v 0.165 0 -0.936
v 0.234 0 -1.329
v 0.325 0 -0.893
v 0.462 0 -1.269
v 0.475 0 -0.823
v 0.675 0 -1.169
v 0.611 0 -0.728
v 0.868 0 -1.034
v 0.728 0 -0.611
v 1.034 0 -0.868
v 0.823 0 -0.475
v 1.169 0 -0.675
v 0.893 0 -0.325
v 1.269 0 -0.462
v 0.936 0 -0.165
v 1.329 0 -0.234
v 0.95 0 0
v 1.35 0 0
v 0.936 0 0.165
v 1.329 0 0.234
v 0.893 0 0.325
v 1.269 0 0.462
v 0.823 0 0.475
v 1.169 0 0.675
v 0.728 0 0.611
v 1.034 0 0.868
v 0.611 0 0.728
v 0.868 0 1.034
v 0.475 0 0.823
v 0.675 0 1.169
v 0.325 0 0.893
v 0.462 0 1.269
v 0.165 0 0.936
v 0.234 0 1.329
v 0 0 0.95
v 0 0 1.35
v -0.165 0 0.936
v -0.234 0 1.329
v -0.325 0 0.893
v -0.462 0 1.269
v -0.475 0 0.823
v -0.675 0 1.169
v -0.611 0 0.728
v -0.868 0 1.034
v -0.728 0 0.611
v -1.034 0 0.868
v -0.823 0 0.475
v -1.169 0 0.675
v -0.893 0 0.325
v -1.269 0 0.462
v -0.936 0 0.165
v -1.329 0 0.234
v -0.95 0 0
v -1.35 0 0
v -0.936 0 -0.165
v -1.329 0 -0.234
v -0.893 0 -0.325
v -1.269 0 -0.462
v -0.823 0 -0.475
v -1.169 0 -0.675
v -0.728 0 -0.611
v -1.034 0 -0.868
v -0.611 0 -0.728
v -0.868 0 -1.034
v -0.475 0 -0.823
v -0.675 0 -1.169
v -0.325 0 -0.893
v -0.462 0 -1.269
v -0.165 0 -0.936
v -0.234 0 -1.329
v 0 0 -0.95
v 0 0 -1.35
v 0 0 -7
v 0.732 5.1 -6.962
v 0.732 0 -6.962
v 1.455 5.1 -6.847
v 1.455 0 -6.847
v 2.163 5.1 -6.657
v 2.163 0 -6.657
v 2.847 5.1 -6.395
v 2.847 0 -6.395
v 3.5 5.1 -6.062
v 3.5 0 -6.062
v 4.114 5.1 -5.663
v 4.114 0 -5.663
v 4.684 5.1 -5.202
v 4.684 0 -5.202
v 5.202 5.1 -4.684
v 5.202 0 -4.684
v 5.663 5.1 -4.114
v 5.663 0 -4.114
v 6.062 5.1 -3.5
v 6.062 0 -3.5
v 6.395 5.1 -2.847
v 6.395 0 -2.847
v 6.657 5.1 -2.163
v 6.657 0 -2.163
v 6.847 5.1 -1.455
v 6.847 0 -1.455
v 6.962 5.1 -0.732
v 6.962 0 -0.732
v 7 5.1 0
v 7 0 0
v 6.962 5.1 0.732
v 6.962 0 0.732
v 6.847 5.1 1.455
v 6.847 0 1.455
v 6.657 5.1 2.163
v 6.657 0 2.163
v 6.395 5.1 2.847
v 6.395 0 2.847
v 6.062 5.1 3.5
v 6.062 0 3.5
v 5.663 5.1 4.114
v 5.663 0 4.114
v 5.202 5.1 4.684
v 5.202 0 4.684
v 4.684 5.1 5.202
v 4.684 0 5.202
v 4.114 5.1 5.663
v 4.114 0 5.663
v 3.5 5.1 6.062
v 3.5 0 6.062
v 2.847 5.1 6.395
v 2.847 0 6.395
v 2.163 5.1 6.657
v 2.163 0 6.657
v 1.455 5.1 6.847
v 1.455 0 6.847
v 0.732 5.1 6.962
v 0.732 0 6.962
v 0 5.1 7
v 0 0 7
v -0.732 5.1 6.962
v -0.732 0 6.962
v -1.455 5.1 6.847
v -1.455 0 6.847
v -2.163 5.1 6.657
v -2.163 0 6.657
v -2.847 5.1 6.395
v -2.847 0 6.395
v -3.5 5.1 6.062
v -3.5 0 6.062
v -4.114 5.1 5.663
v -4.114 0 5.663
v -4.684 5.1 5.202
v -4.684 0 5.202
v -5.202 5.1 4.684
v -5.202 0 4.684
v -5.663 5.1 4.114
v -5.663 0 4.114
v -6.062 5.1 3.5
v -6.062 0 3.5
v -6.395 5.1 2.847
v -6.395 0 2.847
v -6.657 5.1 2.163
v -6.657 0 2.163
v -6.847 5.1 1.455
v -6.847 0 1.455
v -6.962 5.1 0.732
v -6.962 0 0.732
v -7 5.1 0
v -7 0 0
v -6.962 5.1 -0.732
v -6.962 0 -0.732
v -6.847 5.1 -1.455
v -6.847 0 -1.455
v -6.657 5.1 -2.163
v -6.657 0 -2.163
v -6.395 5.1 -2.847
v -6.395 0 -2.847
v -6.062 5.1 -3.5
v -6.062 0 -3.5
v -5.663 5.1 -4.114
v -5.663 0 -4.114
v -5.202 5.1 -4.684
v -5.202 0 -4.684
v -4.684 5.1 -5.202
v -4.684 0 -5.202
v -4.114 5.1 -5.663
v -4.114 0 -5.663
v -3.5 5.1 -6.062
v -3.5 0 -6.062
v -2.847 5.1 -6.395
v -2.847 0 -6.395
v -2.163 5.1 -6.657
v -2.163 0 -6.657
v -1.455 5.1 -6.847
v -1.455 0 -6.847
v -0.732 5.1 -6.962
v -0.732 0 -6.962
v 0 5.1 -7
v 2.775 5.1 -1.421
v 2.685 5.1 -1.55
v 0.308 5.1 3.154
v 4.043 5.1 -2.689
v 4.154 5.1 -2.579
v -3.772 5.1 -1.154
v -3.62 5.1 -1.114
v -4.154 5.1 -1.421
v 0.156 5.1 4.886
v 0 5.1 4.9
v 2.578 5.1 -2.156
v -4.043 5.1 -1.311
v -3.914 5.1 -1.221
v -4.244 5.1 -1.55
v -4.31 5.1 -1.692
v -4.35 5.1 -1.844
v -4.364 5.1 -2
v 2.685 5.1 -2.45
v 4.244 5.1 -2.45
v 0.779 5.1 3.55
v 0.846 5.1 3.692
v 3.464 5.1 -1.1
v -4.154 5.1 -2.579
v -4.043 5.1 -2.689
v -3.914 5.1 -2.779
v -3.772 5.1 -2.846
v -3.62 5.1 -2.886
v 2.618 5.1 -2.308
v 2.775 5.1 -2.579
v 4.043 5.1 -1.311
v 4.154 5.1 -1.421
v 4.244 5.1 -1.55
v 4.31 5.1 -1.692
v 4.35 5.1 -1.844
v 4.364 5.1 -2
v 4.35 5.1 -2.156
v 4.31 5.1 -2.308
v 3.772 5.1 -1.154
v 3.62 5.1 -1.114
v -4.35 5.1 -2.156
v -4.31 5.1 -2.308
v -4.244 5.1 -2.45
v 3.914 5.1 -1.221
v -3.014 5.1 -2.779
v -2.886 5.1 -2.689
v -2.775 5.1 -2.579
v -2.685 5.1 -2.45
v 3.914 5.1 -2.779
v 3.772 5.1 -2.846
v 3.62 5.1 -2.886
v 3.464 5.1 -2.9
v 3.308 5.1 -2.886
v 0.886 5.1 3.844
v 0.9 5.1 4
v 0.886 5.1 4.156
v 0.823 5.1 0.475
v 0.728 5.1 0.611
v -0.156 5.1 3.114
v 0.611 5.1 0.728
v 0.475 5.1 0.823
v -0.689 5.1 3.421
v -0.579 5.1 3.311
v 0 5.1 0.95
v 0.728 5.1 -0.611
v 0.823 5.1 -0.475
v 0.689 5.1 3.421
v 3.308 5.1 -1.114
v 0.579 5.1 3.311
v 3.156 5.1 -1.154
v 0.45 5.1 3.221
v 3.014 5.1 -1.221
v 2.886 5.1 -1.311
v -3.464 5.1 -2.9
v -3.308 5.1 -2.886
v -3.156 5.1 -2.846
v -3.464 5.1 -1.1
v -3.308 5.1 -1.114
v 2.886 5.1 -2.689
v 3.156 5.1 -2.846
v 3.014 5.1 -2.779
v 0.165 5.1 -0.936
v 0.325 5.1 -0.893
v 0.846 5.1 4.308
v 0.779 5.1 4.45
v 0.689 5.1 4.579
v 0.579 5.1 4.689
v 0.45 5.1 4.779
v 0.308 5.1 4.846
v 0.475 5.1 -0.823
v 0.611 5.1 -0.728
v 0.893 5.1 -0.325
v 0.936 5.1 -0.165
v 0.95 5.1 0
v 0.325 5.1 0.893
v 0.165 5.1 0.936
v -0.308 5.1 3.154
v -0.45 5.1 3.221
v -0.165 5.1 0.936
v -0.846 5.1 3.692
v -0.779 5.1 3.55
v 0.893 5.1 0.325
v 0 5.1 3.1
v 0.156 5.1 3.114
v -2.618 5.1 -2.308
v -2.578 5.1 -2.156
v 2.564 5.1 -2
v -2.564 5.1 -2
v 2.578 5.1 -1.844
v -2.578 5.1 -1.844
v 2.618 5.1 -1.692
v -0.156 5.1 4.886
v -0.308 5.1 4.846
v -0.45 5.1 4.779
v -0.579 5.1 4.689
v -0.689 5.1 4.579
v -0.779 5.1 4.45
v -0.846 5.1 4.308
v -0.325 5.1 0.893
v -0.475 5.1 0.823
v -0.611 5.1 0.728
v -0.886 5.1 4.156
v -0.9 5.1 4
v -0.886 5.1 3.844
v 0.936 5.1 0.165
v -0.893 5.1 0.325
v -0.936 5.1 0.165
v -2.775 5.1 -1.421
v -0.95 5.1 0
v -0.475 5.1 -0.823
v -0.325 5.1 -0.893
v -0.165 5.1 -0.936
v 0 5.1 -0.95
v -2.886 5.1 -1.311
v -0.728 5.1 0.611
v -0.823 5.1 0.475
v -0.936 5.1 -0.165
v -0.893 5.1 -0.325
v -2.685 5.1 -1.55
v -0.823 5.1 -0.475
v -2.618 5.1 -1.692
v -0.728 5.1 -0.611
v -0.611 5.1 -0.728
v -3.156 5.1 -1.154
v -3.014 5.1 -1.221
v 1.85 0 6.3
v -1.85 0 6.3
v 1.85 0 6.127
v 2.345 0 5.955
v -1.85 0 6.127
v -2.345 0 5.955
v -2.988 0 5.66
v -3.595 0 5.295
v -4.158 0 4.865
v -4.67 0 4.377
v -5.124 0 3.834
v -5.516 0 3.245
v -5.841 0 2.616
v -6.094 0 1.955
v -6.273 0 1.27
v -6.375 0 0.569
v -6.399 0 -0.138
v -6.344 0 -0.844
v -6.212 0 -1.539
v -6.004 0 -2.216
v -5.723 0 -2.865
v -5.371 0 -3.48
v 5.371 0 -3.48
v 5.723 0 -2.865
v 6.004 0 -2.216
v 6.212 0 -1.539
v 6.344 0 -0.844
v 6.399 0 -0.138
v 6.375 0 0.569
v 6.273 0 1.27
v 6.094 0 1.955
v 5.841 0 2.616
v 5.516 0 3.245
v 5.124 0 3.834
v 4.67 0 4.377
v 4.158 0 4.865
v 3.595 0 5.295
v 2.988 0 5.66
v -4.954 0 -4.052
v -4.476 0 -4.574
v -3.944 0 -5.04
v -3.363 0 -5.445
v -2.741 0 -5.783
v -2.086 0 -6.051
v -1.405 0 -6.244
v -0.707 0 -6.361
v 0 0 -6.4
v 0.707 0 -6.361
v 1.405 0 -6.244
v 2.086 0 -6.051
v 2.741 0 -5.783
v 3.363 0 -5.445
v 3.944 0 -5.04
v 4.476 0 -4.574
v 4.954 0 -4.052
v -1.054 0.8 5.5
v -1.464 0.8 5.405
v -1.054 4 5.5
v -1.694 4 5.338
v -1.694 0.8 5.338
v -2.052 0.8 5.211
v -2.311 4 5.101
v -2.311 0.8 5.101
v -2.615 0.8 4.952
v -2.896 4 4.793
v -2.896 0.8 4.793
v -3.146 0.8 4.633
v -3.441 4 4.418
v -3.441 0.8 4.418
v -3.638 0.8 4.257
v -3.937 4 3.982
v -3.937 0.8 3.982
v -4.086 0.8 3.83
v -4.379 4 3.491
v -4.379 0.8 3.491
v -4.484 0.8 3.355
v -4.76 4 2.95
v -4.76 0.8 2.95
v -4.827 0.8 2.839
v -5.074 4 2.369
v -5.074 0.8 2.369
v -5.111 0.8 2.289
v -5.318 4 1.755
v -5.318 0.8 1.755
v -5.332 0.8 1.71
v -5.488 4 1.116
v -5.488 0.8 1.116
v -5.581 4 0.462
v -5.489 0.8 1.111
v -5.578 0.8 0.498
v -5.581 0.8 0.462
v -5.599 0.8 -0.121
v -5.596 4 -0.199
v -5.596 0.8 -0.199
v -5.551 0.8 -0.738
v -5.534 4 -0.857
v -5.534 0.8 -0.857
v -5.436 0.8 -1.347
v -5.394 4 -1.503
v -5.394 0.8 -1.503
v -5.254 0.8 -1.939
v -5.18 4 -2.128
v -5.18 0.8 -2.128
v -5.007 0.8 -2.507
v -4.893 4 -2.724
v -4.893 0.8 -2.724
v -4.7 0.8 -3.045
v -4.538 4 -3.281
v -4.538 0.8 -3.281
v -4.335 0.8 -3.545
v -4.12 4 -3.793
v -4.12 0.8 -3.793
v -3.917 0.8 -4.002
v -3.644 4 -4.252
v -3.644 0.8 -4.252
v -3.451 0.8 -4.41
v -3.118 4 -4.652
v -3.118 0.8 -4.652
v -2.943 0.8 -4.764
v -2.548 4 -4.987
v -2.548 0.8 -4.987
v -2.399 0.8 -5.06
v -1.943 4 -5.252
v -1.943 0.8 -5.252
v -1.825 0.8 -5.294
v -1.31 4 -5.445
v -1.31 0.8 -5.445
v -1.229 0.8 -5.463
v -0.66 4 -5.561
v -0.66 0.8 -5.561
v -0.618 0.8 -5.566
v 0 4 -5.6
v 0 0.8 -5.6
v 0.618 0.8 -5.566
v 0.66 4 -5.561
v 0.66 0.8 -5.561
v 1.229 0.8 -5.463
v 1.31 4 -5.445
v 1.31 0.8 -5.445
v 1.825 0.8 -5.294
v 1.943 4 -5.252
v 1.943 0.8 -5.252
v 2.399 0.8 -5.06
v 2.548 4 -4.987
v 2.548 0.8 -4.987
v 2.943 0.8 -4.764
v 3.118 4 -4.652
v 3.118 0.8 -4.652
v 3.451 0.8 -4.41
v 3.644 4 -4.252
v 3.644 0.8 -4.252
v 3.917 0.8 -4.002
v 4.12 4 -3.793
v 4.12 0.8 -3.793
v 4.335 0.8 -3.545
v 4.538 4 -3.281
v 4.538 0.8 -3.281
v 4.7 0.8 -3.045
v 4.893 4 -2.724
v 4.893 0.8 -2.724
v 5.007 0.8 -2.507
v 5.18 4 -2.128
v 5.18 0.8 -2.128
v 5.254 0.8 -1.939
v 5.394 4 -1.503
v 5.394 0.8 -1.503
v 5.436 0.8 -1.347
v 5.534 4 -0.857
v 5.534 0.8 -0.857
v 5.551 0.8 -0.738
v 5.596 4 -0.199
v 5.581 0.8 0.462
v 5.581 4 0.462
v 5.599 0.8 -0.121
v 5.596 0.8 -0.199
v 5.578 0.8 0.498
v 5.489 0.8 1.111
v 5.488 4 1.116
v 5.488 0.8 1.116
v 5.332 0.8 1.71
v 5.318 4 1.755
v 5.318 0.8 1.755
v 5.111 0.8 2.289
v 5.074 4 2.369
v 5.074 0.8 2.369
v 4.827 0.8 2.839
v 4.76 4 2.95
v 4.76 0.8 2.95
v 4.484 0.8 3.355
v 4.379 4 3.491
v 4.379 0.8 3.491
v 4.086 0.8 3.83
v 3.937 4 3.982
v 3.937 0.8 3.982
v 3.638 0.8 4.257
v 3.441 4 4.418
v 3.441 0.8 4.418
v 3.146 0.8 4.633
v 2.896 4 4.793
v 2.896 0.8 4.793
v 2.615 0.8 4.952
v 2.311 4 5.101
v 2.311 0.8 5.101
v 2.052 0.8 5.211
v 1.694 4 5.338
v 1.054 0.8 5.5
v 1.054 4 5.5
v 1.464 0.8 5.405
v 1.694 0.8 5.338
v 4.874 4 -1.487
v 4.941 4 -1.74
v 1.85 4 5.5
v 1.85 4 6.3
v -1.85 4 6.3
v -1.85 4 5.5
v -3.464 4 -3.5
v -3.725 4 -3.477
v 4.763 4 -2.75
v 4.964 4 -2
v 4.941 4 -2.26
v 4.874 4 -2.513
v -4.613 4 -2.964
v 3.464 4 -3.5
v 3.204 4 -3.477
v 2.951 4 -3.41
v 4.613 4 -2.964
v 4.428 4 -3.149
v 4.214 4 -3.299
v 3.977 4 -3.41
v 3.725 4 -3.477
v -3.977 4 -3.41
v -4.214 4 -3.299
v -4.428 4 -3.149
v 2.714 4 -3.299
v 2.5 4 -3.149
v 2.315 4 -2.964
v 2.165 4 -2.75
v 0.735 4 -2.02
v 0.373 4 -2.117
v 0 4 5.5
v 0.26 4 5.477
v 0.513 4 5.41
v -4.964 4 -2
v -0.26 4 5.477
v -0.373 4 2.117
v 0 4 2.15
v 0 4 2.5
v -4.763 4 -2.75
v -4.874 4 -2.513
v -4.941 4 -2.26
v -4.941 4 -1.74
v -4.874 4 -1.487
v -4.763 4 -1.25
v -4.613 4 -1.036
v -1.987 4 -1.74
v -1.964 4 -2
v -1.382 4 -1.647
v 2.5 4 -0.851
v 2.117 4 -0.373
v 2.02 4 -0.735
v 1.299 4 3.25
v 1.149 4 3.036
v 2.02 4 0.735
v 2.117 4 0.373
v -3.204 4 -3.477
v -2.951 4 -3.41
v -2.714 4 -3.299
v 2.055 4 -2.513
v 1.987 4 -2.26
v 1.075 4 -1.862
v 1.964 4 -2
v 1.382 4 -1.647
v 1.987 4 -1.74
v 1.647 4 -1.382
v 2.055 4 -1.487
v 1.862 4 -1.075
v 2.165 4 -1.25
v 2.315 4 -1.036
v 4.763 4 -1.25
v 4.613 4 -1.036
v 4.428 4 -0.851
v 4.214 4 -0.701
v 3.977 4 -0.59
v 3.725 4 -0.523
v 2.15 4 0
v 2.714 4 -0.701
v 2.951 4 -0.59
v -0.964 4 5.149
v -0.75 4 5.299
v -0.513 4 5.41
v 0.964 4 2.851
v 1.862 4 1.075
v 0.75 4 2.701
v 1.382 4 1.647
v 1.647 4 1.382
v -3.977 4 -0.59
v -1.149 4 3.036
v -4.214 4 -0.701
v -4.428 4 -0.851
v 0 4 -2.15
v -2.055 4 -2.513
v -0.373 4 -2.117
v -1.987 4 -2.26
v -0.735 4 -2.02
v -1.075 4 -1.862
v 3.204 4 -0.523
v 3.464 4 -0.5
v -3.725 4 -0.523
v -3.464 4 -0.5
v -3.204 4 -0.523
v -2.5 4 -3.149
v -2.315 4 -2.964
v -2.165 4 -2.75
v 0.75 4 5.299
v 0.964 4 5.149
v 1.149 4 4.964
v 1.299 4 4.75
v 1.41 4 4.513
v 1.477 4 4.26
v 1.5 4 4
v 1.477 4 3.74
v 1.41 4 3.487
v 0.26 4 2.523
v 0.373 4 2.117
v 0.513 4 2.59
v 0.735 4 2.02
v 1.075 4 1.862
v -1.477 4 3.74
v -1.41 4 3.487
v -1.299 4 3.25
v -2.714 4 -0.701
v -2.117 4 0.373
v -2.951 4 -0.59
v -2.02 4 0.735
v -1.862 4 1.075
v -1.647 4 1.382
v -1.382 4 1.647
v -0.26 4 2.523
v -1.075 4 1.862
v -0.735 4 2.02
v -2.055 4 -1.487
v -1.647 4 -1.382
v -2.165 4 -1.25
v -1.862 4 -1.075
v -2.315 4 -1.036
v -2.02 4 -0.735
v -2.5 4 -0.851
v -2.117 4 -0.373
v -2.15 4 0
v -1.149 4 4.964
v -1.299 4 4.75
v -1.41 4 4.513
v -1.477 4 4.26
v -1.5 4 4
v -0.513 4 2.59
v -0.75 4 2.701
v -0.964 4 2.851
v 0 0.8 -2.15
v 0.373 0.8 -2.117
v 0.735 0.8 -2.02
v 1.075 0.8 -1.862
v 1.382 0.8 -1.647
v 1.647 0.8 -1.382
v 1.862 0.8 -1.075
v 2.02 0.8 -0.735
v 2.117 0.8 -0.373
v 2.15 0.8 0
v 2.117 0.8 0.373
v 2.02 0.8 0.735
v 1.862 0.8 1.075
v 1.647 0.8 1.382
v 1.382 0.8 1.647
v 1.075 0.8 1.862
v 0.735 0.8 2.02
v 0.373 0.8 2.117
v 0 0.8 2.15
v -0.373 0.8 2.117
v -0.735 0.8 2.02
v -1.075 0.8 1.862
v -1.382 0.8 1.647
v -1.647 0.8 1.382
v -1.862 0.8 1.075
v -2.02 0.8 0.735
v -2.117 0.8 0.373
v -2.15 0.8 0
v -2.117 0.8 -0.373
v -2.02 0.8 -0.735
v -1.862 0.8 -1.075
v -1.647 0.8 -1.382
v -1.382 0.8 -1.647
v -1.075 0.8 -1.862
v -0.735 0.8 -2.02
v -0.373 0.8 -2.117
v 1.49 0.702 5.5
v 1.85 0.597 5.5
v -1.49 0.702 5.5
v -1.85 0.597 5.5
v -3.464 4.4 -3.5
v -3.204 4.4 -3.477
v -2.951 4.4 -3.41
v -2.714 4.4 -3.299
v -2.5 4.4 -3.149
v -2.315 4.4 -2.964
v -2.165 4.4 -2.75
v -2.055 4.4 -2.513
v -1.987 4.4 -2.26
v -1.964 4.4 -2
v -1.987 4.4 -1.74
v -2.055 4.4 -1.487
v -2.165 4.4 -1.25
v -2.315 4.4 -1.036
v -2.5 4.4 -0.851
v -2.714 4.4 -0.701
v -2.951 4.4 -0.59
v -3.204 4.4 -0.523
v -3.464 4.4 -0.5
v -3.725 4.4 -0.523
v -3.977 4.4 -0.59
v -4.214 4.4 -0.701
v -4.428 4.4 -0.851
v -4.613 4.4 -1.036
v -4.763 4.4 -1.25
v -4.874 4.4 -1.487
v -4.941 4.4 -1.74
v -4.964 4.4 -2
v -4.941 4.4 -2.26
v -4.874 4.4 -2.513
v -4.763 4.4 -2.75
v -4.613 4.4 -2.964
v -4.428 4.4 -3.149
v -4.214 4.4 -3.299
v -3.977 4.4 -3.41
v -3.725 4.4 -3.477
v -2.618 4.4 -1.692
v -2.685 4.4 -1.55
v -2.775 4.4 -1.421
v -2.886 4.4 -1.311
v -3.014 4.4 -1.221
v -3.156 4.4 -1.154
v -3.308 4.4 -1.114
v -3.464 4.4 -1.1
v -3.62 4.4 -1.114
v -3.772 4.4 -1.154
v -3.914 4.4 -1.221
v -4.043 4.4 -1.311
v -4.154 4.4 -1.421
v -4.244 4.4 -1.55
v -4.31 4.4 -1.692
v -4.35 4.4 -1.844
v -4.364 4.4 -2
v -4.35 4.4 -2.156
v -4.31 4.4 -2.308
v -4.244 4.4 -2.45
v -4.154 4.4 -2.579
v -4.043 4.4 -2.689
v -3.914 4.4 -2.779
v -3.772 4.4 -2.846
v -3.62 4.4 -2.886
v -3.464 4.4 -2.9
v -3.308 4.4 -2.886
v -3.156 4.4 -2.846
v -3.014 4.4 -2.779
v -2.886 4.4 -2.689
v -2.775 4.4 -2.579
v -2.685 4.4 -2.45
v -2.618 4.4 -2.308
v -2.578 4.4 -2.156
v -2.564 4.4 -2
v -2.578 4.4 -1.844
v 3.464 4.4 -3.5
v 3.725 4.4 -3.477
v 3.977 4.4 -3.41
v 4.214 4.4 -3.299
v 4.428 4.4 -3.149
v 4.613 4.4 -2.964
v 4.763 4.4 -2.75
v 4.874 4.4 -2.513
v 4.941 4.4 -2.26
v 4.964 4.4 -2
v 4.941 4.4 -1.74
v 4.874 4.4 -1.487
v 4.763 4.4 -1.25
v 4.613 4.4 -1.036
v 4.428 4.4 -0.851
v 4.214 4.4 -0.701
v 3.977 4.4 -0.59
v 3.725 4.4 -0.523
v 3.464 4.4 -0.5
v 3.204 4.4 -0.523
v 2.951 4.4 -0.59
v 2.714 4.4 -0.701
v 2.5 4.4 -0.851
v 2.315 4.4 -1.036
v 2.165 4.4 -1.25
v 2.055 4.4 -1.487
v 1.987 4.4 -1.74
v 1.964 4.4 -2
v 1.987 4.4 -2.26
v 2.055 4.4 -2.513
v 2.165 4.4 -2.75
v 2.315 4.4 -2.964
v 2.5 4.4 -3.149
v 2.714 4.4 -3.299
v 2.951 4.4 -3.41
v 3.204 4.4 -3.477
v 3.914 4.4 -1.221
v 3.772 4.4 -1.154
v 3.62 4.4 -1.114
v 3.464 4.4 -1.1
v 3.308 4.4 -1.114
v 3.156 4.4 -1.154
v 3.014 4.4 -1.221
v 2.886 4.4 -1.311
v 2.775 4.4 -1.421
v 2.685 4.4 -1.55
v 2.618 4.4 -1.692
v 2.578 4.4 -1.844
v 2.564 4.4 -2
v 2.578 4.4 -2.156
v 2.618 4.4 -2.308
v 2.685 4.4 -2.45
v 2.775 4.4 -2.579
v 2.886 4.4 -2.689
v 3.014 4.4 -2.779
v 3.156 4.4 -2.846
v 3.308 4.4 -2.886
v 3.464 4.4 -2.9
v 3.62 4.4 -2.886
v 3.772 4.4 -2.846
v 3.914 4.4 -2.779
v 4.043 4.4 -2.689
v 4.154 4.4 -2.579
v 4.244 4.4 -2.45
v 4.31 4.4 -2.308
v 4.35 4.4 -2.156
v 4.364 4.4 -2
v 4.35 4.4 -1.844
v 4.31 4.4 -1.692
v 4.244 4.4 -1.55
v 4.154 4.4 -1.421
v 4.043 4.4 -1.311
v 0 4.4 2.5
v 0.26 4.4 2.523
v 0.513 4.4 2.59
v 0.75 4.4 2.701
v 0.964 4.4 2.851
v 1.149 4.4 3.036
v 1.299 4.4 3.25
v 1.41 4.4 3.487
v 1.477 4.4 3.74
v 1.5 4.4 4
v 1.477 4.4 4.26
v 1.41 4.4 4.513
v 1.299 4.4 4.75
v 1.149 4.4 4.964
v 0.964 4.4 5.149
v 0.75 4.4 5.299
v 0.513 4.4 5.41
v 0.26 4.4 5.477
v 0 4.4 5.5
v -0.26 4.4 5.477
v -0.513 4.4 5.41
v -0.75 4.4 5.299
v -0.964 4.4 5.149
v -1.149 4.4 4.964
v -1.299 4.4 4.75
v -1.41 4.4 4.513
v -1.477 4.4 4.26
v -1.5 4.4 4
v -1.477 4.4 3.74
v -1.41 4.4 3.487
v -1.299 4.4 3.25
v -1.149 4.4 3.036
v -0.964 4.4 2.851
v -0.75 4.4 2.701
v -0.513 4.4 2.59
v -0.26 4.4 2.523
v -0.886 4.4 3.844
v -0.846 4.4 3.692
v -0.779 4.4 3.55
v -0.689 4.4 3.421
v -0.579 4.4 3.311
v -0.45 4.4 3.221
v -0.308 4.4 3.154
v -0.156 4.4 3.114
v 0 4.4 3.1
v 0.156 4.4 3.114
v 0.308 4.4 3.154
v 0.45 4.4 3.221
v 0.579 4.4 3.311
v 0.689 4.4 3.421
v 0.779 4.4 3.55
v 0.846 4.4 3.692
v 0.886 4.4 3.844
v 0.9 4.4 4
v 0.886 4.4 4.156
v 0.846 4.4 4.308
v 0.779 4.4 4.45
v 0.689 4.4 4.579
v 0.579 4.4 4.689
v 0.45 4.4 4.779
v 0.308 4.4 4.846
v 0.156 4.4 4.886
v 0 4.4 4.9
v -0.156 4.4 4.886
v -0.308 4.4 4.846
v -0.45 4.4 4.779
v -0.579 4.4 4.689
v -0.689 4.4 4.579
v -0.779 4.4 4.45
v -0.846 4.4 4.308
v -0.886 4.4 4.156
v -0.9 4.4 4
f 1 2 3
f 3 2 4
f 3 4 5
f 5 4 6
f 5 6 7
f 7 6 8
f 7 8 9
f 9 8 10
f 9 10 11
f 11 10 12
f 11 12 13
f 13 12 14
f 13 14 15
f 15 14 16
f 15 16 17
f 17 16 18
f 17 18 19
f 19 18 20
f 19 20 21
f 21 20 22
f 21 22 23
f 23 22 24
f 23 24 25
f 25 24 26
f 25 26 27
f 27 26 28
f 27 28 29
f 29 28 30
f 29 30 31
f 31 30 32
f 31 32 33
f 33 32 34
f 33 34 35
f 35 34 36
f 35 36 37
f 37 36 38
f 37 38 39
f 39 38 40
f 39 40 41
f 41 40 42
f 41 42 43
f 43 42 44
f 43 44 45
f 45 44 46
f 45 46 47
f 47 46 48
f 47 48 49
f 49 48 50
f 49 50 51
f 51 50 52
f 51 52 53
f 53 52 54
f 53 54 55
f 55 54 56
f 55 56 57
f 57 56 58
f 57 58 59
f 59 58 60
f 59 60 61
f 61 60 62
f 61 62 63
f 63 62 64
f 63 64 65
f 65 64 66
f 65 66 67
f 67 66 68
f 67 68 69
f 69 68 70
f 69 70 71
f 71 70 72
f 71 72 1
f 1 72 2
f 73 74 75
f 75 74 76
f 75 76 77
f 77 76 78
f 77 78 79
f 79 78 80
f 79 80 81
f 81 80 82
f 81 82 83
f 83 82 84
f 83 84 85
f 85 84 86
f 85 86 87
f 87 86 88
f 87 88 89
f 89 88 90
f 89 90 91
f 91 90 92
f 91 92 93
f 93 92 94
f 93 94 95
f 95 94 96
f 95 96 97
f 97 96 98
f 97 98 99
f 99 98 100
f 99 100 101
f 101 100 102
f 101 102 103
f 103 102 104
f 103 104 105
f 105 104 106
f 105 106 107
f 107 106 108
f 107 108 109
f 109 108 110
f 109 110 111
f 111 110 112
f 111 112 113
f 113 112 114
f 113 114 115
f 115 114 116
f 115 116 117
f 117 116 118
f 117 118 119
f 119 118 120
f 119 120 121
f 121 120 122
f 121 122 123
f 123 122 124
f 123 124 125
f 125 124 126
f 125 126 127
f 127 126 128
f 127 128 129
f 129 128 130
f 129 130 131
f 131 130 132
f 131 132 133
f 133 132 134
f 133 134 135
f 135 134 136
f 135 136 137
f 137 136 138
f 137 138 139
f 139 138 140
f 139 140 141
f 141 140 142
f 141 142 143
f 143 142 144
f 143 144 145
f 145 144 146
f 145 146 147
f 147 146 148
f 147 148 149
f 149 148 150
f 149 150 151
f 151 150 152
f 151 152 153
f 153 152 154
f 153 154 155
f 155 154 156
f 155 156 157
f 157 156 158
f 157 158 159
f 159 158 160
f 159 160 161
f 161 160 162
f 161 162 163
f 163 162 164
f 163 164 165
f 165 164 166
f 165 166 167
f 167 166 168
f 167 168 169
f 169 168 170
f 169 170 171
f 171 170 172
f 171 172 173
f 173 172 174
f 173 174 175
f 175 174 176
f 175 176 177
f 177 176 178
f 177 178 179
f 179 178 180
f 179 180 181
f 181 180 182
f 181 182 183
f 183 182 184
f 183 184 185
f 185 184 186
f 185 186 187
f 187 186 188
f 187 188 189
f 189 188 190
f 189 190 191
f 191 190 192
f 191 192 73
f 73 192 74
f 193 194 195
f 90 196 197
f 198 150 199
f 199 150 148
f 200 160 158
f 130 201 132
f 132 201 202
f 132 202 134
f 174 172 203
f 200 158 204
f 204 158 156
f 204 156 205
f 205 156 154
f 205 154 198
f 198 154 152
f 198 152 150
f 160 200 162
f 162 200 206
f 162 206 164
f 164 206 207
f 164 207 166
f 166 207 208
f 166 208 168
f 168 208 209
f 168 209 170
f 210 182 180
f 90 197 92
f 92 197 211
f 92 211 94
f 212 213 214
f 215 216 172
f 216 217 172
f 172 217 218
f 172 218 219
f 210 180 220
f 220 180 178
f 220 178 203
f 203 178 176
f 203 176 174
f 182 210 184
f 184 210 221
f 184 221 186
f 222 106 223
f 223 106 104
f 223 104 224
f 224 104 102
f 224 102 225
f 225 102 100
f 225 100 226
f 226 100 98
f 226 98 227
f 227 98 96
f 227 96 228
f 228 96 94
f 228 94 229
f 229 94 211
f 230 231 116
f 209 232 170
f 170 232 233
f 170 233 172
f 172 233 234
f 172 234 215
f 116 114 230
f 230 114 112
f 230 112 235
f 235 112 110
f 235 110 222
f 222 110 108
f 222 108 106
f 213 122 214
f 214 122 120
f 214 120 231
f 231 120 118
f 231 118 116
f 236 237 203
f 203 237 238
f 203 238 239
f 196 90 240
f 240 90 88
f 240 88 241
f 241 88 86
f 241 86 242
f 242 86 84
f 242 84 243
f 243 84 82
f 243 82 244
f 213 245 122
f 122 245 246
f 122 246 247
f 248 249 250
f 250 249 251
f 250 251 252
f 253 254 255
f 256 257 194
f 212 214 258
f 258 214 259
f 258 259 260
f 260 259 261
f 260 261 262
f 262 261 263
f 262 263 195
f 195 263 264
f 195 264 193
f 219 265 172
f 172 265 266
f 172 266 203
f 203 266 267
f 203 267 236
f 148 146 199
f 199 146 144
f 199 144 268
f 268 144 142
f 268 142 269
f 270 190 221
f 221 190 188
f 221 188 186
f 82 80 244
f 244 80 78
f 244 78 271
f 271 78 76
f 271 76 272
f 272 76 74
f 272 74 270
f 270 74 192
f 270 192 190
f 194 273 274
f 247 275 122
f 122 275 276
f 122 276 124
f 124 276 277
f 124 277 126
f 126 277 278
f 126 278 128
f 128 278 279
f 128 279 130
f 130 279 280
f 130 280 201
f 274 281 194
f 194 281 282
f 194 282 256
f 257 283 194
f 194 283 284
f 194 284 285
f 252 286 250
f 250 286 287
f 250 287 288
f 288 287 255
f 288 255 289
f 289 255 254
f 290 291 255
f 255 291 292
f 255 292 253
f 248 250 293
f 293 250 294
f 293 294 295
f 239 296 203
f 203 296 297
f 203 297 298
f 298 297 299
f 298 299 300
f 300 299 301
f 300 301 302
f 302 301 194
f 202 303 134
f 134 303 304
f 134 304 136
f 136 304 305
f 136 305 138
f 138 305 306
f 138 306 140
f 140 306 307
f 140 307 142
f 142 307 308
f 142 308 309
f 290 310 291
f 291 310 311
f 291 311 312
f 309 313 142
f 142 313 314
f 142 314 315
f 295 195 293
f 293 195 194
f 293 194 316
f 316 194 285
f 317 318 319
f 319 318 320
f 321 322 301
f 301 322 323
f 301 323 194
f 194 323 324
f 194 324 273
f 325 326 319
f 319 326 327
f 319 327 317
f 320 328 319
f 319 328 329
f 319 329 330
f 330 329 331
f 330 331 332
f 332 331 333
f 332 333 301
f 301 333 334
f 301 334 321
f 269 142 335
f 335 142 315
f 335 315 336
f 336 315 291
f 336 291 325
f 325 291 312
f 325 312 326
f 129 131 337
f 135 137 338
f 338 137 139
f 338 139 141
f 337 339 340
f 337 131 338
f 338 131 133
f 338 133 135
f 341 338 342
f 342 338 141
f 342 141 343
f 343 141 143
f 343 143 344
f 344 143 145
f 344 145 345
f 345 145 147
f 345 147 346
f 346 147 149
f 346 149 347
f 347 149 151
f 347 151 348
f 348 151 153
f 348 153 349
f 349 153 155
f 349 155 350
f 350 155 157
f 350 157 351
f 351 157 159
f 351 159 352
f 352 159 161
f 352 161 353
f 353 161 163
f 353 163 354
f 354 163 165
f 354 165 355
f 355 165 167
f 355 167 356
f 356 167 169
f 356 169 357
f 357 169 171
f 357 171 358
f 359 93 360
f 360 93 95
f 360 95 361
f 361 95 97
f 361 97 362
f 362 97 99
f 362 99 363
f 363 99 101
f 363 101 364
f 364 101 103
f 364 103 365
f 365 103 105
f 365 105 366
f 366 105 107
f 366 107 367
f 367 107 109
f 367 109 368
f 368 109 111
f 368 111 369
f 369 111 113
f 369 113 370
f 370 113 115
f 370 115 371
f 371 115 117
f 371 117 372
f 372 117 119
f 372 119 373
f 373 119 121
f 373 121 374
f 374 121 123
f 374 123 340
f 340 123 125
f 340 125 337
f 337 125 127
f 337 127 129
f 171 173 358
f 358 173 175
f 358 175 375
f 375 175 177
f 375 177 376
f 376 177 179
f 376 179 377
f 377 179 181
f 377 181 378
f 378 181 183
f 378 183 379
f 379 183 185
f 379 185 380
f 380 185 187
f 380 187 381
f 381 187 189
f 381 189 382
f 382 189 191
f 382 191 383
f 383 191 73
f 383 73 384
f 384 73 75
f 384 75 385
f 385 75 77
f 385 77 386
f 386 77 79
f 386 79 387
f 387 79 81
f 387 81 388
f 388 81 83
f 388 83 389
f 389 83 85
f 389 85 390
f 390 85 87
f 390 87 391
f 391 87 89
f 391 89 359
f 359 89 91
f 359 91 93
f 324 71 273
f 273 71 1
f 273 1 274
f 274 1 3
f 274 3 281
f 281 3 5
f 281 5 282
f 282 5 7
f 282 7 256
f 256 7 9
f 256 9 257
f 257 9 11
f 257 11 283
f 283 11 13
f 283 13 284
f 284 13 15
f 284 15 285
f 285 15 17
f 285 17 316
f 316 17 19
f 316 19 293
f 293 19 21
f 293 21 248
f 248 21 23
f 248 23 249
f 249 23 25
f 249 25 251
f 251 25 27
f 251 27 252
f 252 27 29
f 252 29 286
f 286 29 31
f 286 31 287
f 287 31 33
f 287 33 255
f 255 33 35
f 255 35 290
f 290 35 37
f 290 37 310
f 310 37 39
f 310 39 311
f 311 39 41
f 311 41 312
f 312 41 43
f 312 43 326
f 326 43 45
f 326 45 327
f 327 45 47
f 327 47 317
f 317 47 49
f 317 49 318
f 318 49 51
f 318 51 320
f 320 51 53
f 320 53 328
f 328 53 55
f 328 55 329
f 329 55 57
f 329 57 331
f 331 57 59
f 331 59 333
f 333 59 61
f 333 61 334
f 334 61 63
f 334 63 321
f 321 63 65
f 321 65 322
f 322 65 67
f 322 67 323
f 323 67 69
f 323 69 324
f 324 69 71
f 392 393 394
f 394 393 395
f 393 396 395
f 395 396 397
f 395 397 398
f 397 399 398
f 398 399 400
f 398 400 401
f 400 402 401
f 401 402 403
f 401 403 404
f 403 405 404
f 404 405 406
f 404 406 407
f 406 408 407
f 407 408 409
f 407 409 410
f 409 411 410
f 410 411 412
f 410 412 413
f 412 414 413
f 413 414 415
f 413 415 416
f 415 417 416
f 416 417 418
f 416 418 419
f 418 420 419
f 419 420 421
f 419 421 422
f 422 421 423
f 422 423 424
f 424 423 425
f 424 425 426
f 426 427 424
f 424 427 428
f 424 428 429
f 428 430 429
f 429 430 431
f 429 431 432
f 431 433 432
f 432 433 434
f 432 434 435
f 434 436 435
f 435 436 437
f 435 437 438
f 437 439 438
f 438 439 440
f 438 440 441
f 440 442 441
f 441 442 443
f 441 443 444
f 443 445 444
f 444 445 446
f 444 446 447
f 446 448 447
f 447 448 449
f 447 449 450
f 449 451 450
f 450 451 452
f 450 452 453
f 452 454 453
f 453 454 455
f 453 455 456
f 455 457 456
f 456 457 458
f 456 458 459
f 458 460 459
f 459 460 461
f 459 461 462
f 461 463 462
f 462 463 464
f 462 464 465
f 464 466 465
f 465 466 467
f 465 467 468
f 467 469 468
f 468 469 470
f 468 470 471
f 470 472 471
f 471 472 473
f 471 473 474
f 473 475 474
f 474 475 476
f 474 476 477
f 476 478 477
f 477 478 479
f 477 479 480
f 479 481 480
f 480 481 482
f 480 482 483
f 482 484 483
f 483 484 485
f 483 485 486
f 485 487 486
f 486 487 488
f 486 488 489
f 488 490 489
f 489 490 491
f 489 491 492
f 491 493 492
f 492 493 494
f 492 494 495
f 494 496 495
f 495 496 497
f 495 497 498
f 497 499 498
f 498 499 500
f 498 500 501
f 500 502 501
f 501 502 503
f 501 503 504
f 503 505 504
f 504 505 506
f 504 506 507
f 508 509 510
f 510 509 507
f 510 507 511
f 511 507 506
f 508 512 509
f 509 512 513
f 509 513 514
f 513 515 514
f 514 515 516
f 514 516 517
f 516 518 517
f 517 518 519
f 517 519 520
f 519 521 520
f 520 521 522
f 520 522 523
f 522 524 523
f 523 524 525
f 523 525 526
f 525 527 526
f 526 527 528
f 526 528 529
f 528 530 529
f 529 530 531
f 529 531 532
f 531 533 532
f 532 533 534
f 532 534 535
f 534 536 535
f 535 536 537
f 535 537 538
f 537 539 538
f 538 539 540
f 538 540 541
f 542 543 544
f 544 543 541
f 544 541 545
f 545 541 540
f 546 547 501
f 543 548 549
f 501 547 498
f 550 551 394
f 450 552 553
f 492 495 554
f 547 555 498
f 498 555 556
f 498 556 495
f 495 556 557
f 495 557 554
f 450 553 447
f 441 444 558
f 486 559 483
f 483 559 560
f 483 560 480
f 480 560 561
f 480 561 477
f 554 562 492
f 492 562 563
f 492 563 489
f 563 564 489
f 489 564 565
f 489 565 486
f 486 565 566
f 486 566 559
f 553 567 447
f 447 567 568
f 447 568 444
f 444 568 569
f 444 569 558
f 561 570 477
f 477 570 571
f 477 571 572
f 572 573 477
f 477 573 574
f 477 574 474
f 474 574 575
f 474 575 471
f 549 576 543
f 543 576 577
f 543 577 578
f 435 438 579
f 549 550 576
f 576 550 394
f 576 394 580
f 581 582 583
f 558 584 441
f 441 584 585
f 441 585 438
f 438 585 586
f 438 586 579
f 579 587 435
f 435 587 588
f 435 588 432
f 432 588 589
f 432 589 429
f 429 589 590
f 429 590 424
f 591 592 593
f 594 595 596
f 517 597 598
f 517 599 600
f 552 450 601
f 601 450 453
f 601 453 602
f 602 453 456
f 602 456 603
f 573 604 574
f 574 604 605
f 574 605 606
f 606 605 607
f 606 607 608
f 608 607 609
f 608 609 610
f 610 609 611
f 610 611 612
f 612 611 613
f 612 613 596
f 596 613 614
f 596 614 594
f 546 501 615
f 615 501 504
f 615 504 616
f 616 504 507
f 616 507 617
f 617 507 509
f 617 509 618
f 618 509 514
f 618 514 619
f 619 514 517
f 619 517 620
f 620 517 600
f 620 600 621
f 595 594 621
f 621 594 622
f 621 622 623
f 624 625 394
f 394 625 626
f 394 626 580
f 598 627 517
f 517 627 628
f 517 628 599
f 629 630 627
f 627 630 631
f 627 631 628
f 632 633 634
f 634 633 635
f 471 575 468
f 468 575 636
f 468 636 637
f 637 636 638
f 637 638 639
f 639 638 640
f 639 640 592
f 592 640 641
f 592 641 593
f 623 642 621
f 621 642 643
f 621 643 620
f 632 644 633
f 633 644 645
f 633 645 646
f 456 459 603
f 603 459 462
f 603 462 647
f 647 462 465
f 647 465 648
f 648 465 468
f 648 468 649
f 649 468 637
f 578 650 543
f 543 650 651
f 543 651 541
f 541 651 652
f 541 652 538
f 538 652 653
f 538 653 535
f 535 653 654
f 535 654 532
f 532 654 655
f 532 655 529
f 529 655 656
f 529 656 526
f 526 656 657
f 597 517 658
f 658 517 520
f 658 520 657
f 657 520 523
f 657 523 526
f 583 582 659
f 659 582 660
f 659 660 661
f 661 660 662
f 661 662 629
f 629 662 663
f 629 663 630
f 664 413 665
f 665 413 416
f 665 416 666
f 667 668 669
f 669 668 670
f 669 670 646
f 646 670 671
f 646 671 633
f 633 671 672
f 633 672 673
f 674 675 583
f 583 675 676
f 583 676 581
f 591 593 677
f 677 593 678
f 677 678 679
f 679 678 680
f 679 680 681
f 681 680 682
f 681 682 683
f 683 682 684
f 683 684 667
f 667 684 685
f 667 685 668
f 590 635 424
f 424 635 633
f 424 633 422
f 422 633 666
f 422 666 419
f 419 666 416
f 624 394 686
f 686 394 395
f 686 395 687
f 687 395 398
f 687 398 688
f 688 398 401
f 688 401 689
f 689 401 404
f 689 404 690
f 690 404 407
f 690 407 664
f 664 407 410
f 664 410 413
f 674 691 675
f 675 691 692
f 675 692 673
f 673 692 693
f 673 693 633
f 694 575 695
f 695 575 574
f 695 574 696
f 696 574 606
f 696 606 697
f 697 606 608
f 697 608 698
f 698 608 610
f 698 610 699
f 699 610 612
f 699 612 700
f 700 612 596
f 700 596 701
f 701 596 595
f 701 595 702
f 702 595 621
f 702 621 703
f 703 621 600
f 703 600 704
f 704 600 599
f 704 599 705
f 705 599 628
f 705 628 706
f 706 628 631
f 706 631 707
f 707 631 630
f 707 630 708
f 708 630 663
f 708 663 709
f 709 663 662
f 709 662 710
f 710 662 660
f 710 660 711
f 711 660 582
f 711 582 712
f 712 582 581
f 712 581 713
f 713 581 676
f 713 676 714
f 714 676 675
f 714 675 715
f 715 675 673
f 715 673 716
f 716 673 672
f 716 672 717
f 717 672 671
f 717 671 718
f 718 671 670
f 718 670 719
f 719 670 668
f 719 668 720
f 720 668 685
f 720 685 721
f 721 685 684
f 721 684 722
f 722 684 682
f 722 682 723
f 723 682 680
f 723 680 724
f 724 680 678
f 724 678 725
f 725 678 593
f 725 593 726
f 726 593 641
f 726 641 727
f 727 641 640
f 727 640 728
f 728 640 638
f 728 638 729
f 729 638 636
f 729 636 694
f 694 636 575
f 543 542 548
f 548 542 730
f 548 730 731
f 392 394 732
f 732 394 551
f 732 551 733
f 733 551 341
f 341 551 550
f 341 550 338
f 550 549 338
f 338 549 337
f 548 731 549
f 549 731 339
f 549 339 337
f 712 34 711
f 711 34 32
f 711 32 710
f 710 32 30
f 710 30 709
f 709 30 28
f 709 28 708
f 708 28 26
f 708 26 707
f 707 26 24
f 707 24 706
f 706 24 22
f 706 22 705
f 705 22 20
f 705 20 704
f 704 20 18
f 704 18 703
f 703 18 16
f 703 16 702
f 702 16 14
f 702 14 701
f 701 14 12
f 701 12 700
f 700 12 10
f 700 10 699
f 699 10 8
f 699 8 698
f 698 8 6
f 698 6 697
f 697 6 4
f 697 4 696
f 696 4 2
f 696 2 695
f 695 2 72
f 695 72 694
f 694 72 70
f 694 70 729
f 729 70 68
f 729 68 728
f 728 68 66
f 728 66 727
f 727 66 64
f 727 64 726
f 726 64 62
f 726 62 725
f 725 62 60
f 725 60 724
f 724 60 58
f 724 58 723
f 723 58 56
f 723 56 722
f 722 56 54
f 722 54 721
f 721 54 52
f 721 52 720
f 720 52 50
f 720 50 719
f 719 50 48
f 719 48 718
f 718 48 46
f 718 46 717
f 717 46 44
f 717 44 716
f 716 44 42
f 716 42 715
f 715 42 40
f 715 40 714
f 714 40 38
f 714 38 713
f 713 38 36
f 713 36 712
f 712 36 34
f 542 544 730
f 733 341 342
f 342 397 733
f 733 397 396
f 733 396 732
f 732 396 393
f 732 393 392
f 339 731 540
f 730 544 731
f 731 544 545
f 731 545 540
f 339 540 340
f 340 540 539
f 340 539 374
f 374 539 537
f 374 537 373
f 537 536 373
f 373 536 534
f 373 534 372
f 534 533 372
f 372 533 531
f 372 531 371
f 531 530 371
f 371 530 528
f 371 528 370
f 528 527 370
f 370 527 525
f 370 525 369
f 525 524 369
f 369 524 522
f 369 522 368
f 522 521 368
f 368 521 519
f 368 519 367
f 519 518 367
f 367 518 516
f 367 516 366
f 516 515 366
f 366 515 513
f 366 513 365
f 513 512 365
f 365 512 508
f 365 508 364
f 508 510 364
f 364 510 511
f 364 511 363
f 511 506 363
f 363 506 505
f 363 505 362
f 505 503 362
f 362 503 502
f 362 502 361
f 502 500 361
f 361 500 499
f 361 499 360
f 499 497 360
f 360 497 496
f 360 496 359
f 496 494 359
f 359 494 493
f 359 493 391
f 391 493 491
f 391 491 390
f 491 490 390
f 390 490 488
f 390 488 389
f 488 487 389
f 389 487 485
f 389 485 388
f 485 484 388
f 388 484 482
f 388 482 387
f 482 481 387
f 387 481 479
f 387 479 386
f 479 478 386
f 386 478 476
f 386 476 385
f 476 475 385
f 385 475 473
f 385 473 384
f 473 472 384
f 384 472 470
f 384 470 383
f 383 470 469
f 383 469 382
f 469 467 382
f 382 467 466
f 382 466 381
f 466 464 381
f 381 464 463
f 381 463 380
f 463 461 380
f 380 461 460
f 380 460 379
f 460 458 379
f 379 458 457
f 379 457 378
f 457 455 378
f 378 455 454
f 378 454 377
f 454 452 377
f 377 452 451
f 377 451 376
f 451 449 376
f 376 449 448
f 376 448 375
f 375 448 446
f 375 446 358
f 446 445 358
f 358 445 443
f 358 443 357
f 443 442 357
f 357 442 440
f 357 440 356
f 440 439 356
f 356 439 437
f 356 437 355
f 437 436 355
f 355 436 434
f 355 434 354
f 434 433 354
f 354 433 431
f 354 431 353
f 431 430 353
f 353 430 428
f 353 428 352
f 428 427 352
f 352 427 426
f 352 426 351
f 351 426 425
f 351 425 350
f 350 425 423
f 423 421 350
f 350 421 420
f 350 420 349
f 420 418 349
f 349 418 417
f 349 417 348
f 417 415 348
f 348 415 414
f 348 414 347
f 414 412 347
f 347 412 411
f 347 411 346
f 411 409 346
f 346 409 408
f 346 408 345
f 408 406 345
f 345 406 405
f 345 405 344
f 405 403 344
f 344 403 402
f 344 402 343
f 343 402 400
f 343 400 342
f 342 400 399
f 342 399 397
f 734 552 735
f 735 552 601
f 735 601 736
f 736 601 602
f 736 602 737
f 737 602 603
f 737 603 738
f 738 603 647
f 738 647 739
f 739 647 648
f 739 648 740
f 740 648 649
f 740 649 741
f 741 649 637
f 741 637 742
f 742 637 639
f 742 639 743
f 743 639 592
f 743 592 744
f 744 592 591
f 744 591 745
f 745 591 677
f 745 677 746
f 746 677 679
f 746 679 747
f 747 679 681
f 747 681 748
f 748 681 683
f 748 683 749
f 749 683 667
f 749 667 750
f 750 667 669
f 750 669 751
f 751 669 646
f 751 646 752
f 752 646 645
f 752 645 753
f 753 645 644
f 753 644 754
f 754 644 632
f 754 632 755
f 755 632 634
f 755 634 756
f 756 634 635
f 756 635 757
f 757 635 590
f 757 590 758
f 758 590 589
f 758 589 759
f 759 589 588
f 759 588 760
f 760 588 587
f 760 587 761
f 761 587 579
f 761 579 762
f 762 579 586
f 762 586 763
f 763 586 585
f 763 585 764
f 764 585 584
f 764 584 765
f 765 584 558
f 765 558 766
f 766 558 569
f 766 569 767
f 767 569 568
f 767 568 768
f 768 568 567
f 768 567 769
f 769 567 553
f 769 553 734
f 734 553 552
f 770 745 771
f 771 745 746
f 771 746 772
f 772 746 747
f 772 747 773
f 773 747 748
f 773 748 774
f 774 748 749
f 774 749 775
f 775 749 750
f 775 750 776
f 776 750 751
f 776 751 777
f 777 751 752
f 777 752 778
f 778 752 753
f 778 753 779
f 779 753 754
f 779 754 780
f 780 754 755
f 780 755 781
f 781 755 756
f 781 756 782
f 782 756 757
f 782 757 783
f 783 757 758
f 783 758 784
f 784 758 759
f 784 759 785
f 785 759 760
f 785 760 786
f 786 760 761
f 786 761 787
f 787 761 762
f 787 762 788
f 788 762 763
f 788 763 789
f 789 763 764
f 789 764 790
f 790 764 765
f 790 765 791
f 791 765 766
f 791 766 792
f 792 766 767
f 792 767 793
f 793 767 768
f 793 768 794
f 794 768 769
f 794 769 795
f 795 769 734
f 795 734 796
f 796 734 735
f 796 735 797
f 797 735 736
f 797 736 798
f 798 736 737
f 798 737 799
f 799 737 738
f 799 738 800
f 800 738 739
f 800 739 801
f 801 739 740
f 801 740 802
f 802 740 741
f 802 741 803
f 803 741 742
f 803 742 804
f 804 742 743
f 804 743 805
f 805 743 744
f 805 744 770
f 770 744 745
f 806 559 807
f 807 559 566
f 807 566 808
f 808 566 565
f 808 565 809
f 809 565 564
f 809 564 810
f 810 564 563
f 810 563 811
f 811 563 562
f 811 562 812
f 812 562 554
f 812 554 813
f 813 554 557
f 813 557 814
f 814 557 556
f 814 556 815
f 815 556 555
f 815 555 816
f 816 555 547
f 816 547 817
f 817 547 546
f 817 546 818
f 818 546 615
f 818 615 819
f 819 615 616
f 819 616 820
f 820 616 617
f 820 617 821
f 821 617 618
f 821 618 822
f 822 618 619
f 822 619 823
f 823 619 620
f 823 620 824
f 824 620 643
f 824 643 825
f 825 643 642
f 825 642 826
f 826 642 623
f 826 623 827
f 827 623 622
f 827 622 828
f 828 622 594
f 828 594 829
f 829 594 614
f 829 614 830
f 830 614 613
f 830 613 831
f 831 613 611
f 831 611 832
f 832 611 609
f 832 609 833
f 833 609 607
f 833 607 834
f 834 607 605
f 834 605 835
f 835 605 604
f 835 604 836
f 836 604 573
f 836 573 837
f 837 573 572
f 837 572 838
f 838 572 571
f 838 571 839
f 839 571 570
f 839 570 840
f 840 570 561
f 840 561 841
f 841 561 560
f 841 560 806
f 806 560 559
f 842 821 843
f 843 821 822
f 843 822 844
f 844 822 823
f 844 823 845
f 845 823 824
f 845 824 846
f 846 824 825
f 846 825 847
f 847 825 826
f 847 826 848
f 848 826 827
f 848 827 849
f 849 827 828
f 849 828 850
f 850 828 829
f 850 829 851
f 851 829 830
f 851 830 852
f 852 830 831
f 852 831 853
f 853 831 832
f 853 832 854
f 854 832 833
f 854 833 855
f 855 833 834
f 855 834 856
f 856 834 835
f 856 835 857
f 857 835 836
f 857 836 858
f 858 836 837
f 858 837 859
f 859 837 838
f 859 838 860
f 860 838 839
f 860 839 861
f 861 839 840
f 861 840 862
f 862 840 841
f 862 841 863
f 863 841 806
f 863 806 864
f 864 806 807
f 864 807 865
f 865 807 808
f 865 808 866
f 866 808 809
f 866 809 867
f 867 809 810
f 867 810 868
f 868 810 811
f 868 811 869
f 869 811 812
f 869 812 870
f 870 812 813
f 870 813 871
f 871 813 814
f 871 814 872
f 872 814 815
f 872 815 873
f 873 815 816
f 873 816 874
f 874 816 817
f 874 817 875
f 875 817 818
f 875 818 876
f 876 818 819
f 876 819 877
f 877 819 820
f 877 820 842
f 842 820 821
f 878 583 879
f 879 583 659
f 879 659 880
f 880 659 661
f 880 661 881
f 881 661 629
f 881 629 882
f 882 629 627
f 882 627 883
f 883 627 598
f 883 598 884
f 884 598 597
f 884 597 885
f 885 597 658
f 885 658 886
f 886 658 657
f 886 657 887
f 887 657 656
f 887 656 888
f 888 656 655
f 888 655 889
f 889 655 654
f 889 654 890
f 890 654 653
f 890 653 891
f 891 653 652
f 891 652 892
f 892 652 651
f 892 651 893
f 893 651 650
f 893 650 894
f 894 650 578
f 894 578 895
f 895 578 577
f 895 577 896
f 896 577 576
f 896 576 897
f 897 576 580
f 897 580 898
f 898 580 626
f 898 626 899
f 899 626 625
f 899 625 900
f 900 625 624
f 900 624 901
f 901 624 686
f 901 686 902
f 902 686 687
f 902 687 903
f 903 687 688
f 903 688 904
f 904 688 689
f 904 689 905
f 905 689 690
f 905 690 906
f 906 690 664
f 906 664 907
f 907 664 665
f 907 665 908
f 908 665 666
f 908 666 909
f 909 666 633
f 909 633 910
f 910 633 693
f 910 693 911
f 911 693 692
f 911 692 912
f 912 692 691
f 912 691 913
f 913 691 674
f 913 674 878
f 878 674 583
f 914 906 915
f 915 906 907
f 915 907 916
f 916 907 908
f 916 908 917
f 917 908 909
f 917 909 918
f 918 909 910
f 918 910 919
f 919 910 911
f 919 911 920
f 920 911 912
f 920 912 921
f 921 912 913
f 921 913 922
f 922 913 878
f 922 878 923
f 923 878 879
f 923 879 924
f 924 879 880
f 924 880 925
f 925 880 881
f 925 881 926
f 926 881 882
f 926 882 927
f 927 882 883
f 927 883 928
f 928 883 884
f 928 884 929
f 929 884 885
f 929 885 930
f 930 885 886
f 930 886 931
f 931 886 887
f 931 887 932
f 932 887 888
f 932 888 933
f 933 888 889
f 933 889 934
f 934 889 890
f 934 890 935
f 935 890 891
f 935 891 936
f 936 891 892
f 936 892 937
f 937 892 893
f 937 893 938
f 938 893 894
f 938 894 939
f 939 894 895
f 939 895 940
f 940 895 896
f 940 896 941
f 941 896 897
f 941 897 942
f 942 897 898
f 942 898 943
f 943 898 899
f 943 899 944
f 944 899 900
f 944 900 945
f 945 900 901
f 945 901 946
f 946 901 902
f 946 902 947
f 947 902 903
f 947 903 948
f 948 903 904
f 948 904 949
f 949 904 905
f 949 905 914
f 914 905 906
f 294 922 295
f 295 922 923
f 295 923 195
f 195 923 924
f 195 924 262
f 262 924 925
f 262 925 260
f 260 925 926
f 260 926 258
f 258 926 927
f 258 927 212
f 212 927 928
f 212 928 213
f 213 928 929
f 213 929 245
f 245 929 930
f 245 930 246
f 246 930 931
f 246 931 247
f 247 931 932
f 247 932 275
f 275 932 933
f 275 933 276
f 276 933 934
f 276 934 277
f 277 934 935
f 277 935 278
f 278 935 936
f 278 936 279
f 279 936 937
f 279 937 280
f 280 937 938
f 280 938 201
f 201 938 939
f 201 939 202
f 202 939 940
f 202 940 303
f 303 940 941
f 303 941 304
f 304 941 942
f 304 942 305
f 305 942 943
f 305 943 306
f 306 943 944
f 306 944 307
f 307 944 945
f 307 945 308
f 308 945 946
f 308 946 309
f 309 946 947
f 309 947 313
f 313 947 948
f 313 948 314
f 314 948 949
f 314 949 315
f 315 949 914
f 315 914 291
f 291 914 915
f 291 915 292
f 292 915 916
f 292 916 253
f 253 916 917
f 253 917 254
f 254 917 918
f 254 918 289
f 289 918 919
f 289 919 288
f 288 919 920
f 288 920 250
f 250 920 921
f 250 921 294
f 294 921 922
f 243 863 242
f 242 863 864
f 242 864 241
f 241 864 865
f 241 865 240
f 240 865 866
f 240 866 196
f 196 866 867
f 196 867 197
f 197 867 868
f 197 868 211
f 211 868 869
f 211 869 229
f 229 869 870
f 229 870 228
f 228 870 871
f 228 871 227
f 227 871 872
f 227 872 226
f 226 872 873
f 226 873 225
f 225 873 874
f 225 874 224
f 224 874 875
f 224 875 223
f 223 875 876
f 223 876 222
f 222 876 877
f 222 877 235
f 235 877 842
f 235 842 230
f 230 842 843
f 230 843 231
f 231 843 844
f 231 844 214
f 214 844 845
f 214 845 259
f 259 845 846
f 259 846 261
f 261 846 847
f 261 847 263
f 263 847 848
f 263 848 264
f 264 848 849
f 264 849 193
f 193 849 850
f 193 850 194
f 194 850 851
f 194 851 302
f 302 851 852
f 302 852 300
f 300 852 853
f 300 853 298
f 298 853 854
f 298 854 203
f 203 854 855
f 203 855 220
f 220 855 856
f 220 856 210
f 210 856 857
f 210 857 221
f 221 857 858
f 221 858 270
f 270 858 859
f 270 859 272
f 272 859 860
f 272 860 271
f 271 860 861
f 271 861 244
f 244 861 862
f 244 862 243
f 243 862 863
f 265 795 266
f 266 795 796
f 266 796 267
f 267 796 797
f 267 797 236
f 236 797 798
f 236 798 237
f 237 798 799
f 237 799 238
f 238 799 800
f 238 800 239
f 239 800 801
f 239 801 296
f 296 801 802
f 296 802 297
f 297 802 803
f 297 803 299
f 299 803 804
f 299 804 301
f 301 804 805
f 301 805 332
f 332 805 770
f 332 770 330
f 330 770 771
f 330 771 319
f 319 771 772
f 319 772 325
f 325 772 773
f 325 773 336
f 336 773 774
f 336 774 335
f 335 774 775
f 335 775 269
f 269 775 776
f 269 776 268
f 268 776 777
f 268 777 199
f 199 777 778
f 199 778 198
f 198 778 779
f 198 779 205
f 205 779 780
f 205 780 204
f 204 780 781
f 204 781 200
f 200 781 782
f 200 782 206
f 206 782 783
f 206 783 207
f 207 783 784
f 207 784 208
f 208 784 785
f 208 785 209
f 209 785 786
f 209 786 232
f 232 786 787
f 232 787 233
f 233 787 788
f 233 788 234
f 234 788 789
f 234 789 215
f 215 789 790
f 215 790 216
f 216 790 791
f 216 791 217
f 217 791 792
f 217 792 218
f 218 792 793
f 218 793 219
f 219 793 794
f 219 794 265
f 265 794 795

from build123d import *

# Parameters (mm, degrees)
SKETCH_1_R               = 7
EXTRUDE_1_DEPTH          = 5.1
SKETCH_4_R               = 0.95
CUT_EXTRUDE_2_DEPTH      = 8
SKETCH_5_R               = 5.6
SKETCH_5_R_2             = 2.15
CUT_EXTRUDE_3_DEPTH      = 4
SKETCH_6_W               = 3.7
SKETCH_6_H               = 0.8
CUT_EXTRUDE_4_DEPTH      = 4
CHAMFER_1_SIZE           = 0.8
CHAMFER_2_SIZE           = 0.8
SKETCH_7_R               = 1.5
CUT_EXTRUDE_5_DEPTH      = 0.4
SKETCH_8_R               = 0.9
CUT_EXTRUDE_6_DEPTH      = 5
CUT_EXTRUDE_6_DEPTH_BACK = 2.1


with BuildPart() as part:
    # Эскиз1 → Бобышка-Вытянуть1 (new body)
    with BuildSketch(Plane(origin=(0, 0, 0), x_dir=(1, 0, 0), z_dir=(0, 1, 0))):
        Circle(SKETCH_1_R)
    extrude(amount=EXTRUDE_1_DEPTH)

    # Эскиз4 → Вырез-Вытянуть2 (cut)
    with BuildSketch(Plane.XZ):
        Circle(SKETCH_4_R)
    extrude(amount=-CUT_EXTRUDE_2_DEPTH, mode=Mode.SUBTRACT)

    # Эскиз5 → Вырез-Вытянуть3 (cut)
    with BuildSketch(Plane(origin=(0, 0, 0), x_dir=(-1, 0, 0), z_dir=(0, -1, 0))):
        Circle(SKETCH_5_R)
        Circle(SKETCH_5_R_2, mode=Mode.SUBTRACT)
    extrude(amount=-CUT_EXTRUDE_3_DEPTH, mode=Mode.SUBTRACT)

    # Эскиз6 → Вырез-Вытянуть4 (cut)
    with BuildSketch(Plane.XZ):
        with Locations((0, 5.9)):
            Rectangle(SKETCH_6_W, SKETCH_6_H)
    extrude(amount=-CUT_EXTRUDE_4_DEPTH, mode=Mode.SUBTRACT)

    # Фаска1
    chamfer_1_edges = [part.edges().sort_by_distance(p)[0] for p in [
        (2.15, 0, 0),
    ]]
    chamfer(chamfer_1_edges, length=CHAMFER_1_SIZE)

    # Фаска2
    chamfer_2_edges = [part.edges().sort_by_distance(p)[0] for p in [
        (0, 0, -5.6),
    ]]
    chamfer(chamfer_2_edges, length=CHAMFER_2_SIZE)

    # Эскиз7 → Вырез-Вытянуть5 (cut)
    with BuildSketch(Plane.XZ.offset(-4)):
        with Locations((0, 4)):
            Circle(SKETCH_7_R)
        with Locations((3.464101615, -2)):
            Circle(SKETCH_7_R)
        with Locations((-3.464101615, -2)):
            Circle(SKETCH_7_R)
    extrude(amount=-CUT_EXTRUDE_5_DEPTH, mode=Mode.SUBTRACT)

    # Эскиз8 → Вырез-Вытянуть6 (cut, two sides)
    with BuildSketch(Plane.XZ.offset(-4)) as cut_extrude_6_sk:
        with Locations((0, 4)):
            Circle(SKETCH_8_R)
        with Locations((3.464101615, -2)):
            Circle(SKETCH_8_R)
        with Locations((-3.464101615, -2)):
            Circle(SKETCH_8_R)
    extrude(amount=CUT_EXTRUDE_6_DEPTH, mode=Mode.SUBTRACT)
    extrude(cut_extrude_6_sk.sketch, amount=-CUT_EXTRUDE_6_DEPTH_BACK, mode=Mode.SUBTRACT)


solid = part.part
